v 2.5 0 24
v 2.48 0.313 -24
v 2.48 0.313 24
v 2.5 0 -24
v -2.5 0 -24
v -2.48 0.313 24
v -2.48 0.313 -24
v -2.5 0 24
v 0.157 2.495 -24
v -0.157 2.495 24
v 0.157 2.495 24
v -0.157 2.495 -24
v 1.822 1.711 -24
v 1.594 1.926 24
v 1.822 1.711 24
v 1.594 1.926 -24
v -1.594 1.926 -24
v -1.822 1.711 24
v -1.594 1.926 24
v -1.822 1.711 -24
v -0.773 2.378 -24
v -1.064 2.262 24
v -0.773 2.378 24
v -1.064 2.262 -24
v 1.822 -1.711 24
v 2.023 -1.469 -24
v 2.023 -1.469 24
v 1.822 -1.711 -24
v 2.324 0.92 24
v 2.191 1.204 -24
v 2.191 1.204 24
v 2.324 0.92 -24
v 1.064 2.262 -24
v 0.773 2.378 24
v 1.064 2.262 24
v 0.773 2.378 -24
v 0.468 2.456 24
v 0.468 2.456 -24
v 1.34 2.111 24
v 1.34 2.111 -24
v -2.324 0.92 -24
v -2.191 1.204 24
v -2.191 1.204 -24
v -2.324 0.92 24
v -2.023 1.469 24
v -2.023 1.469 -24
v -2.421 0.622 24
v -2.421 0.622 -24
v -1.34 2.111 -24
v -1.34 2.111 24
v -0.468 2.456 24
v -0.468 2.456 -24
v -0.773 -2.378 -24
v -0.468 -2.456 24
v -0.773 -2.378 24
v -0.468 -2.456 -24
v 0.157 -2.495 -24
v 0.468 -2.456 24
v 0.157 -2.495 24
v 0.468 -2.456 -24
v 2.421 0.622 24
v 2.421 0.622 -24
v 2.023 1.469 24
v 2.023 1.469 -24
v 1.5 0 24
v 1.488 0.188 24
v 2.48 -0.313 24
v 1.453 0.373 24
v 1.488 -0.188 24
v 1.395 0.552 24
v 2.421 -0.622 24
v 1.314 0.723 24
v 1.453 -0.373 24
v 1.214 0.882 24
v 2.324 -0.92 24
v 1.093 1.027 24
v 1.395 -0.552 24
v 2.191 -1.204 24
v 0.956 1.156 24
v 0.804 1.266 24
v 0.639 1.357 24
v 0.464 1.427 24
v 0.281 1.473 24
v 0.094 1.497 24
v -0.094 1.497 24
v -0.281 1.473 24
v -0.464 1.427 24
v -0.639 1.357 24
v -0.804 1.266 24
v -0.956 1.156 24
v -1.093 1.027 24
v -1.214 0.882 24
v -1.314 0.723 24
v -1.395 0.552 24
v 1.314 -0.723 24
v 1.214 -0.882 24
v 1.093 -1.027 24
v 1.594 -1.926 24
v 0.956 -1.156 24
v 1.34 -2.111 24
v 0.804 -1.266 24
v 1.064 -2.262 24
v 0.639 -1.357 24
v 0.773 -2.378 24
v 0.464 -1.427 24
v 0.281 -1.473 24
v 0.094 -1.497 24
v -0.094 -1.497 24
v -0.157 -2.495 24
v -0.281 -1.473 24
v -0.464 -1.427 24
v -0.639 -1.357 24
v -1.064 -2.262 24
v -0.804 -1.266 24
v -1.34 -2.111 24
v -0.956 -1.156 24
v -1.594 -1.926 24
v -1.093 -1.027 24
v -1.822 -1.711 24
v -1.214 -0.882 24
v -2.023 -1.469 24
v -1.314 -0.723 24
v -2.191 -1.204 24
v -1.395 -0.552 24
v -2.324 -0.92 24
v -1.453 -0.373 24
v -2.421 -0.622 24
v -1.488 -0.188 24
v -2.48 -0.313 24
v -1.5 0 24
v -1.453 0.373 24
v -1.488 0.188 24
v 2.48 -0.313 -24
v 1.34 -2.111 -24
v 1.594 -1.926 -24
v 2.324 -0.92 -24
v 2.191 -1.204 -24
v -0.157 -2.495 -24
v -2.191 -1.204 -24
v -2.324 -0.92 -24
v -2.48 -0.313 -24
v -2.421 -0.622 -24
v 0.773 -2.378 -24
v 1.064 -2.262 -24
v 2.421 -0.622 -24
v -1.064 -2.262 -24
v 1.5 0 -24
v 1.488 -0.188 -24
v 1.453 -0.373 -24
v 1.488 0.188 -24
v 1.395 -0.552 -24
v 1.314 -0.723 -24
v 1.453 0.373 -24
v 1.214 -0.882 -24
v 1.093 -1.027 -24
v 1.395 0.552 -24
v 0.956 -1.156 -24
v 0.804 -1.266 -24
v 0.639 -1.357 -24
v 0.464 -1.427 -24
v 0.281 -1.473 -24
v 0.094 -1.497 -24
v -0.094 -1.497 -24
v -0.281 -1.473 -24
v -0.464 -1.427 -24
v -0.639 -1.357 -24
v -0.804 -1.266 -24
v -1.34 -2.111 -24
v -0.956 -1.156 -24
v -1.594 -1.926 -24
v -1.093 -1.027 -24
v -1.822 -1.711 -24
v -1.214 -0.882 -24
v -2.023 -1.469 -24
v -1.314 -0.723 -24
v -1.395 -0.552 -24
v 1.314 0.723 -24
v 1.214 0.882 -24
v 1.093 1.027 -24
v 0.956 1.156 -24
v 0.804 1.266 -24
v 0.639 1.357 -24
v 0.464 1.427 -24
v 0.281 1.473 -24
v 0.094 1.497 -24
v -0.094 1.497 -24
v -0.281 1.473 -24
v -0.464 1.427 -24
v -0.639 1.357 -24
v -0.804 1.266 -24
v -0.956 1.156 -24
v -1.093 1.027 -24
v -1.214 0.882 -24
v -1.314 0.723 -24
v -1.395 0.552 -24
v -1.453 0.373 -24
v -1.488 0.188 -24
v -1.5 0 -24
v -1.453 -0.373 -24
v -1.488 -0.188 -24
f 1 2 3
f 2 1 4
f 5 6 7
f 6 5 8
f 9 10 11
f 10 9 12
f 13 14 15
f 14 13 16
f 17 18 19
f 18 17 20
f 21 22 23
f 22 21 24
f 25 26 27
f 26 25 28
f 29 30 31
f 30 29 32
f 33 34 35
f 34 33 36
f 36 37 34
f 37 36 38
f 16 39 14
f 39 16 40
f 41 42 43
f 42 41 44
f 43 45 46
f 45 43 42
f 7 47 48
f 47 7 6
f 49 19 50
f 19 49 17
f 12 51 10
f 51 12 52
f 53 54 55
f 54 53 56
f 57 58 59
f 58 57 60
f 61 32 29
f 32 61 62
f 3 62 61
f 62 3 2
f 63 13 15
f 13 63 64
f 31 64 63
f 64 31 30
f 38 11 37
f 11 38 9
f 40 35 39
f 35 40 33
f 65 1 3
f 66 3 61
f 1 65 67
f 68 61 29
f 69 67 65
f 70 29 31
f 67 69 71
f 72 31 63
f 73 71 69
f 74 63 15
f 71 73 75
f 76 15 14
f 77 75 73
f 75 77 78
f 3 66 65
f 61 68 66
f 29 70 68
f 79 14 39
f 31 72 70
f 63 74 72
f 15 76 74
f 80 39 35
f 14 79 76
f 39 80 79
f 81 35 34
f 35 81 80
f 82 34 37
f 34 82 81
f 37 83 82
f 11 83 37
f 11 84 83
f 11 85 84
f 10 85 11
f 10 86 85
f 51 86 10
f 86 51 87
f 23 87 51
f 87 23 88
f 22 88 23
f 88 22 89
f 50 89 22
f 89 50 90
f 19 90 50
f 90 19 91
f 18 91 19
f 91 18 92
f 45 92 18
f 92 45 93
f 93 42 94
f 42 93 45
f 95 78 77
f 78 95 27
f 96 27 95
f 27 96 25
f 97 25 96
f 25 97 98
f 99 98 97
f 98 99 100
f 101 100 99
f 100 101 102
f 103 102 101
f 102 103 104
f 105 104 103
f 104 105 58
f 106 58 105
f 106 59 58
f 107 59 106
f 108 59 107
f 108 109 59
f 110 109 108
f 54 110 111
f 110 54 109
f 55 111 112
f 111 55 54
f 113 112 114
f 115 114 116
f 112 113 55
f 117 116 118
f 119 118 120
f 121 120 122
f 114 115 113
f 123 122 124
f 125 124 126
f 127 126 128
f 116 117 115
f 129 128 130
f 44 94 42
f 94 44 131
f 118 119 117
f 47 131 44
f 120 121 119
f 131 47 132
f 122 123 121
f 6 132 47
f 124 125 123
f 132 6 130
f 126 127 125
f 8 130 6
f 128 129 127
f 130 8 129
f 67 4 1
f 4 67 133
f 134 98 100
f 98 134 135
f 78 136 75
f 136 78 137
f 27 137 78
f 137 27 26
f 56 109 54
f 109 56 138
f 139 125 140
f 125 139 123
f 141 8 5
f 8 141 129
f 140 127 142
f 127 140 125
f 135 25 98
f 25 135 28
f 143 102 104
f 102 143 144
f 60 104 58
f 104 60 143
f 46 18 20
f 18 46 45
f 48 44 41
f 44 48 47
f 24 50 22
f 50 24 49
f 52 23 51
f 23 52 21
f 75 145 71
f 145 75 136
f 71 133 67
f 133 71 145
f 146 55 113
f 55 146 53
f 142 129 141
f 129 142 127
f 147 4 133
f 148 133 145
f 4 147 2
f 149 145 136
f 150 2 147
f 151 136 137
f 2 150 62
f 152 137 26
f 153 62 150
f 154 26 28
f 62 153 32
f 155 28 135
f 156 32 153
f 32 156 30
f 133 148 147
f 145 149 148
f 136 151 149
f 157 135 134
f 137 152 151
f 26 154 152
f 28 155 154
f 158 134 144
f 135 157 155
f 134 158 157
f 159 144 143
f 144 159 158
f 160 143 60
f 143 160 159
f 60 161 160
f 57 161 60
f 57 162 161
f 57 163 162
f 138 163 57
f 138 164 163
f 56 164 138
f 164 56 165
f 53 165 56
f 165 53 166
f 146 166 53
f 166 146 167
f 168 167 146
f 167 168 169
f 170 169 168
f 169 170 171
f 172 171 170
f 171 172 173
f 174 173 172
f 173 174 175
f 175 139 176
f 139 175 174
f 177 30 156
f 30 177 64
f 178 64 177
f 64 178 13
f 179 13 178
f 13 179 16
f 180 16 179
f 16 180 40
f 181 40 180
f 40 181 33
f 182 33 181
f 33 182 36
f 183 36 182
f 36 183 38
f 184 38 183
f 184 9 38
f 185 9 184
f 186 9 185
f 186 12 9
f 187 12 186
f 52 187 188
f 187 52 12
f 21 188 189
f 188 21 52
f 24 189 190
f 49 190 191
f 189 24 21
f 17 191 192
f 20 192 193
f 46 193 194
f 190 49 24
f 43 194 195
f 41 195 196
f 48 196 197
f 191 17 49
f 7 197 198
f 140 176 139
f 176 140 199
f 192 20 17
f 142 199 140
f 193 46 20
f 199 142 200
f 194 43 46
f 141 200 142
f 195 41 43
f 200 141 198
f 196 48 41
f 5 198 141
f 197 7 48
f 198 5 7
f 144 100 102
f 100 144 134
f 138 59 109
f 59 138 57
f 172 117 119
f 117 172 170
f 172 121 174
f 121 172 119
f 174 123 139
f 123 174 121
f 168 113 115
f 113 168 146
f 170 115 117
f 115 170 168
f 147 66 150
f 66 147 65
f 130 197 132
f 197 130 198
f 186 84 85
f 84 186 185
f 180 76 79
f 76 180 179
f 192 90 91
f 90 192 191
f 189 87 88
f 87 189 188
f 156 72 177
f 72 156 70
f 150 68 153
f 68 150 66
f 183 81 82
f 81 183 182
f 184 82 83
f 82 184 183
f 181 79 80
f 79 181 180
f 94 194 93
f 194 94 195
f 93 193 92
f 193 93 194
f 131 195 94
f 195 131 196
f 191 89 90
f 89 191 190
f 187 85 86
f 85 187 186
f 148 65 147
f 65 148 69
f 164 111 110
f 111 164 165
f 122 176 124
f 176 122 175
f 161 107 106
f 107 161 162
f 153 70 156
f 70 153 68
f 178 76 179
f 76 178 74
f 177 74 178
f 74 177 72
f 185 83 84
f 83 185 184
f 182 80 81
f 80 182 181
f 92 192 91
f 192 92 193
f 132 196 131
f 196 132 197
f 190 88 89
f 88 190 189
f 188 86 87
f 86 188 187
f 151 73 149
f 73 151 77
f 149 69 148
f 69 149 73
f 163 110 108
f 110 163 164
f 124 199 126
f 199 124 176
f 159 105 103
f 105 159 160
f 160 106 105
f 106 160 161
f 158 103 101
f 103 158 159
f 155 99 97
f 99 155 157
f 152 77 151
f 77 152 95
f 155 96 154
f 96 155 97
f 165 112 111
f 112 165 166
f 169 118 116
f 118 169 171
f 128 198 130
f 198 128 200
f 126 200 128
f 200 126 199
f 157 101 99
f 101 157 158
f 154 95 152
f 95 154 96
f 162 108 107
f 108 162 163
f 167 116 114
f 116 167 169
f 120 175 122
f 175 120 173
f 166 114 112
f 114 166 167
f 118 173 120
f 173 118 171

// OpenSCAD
$fn = 50;


difference() {
	union() {
		translate(v = [0, 0, -24.0000000000]) {
			cylinder(h = 48, r = 2.5000000000);
		}
	}
	union() {
		translate(v = [0, 0, -100.0000000000]) {
			cylinder(h = 200, r = 1.5000000000);
		}
	}
}
